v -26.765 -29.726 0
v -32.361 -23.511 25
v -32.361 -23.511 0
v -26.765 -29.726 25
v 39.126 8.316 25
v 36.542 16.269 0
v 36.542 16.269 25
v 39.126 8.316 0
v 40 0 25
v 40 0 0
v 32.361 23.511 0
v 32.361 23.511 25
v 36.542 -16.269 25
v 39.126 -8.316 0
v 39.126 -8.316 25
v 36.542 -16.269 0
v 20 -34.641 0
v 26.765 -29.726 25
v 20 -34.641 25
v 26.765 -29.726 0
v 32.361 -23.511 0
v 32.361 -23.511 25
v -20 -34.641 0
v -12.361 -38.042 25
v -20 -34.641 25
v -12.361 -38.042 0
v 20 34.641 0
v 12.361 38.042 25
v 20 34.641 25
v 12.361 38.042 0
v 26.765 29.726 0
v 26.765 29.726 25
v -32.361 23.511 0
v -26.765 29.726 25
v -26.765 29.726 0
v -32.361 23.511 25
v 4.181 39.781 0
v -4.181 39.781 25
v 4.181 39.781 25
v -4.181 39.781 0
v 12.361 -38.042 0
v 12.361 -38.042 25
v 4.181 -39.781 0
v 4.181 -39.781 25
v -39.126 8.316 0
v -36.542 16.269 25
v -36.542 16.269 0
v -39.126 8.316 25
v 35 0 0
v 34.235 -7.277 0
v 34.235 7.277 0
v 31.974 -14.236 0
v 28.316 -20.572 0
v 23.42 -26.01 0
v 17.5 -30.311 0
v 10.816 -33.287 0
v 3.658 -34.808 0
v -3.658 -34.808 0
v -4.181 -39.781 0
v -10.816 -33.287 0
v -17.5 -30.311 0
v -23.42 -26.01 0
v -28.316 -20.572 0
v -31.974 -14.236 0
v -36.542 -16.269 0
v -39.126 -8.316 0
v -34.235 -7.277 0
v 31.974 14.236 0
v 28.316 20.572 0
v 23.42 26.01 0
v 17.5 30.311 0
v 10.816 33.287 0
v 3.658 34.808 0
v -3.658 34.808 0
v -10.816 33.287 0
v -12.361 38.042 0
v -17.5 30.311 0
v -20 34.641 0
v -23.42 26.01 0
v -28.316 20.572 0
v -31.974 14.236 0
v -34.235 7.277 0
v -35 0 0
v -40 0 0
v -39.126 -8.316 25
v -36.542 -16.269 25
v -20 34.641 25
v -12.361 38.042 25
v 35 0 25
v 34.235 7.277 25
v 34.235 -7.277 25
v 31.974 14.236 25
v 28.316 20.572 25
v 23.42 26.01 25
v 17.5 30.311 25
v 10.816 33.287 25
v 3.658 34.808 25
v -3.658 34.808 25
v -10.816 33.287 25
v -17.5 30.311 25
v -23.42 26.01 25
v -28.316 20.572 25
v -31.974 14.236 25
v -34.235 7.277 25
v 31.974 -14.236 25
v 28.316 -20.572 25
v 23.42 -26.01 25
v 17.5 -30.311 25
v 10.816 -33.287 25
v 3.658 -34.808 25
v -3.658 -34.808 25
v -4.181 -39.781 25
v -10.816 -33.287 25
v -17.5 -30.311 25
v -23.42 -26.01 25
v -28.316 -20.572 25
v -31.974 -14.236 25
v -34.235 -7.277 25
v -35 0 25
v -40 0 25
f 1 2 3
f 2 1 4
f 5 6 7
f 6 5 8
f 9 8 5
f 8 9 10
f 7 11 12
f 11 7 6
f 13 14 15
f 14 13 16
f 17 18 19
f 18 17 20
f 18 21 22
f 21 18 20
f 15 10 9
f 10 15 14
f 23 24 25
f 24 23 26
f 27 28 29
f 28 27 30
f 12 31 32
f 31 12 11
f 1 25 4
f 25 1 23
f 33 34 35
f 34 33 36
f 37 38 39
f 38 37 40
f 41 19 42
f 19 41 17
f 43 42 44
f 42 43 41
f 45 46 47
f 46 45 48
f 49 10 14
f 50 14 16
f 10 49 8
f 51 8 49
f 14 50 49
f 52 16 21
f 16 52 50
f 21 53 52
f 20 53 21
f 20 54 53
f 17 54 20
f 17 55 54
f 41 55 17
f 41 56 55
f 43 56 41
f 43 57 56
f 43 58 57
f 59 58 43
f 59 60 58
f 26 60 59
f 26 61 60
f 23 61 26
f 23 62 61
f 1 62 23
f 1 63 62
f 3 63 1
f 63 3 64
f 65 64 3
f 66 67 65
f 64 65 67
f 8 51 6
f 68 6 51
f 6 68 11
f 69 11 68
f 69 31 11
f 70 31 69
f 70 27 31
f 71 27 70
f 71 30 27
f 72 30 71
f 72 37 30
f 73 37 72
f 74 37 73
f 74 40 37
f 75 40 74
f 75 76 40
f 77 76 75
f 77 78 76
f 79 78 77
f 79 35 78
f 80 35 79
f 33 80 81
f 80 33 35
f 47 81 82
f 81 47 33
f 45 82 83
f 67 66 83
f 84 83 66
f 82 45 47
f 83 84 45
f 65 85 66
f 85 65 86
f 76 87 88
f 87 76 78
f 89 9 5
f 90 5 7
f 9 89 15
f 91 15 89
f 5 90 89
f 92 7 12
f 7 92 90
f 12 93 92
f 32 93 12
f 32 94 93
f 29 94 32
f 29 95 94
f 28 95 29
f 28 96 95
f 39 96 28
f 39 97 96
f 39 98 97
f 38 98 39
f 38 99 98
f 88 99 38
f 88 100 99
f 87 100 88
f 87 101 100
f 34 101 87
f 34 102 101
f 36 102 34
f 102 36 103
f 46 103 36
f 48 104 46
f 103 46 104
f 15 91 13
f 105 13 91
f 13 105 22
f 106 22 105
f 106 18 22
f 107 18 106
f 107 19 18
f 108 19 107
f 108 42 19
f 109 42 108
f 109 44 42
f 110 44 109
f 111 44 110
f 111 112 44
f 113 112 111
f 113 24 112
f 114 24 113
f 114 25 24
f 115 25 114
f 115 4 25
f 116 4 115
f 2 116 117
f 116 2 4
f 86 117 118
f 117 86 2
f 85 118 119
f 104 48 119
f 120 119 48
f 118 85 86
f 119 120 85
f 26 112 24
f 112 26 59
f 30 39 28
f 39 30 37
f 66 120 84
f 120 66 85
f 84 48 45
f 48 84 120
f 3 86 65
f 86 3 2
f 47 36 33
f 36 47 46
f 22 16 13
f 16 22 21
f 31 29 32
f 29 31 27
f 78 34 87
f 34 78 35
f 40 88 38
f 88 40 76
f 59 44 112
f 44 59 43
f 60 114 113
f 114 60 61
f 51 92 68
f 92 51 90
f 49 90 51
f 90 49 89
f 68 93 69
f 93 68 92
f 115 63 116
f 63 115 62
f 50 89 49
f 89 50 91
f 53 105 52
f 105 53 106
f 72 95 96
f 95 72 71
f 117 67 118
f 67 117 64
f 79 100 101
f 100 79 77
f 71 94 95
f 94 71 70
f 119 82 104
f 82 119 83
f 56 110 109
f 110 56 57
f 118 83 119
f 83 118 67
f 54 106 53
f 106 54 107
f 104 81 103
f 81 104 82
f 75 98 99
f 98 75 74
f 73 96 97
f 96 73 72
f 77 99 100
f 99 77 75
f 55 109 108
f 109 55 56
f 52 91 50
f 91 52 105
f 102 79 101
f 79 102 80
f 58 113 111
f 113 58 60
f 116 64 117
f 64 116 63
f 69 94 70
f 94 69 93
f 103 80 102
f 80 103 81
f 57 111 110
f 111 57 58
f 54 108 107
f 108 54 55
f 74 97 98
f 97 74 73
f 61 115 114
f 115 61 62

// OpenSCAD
$fn=30;
difference(){
cylinder(h=25,r=40);
cylinder(h=25,r=35);
}
